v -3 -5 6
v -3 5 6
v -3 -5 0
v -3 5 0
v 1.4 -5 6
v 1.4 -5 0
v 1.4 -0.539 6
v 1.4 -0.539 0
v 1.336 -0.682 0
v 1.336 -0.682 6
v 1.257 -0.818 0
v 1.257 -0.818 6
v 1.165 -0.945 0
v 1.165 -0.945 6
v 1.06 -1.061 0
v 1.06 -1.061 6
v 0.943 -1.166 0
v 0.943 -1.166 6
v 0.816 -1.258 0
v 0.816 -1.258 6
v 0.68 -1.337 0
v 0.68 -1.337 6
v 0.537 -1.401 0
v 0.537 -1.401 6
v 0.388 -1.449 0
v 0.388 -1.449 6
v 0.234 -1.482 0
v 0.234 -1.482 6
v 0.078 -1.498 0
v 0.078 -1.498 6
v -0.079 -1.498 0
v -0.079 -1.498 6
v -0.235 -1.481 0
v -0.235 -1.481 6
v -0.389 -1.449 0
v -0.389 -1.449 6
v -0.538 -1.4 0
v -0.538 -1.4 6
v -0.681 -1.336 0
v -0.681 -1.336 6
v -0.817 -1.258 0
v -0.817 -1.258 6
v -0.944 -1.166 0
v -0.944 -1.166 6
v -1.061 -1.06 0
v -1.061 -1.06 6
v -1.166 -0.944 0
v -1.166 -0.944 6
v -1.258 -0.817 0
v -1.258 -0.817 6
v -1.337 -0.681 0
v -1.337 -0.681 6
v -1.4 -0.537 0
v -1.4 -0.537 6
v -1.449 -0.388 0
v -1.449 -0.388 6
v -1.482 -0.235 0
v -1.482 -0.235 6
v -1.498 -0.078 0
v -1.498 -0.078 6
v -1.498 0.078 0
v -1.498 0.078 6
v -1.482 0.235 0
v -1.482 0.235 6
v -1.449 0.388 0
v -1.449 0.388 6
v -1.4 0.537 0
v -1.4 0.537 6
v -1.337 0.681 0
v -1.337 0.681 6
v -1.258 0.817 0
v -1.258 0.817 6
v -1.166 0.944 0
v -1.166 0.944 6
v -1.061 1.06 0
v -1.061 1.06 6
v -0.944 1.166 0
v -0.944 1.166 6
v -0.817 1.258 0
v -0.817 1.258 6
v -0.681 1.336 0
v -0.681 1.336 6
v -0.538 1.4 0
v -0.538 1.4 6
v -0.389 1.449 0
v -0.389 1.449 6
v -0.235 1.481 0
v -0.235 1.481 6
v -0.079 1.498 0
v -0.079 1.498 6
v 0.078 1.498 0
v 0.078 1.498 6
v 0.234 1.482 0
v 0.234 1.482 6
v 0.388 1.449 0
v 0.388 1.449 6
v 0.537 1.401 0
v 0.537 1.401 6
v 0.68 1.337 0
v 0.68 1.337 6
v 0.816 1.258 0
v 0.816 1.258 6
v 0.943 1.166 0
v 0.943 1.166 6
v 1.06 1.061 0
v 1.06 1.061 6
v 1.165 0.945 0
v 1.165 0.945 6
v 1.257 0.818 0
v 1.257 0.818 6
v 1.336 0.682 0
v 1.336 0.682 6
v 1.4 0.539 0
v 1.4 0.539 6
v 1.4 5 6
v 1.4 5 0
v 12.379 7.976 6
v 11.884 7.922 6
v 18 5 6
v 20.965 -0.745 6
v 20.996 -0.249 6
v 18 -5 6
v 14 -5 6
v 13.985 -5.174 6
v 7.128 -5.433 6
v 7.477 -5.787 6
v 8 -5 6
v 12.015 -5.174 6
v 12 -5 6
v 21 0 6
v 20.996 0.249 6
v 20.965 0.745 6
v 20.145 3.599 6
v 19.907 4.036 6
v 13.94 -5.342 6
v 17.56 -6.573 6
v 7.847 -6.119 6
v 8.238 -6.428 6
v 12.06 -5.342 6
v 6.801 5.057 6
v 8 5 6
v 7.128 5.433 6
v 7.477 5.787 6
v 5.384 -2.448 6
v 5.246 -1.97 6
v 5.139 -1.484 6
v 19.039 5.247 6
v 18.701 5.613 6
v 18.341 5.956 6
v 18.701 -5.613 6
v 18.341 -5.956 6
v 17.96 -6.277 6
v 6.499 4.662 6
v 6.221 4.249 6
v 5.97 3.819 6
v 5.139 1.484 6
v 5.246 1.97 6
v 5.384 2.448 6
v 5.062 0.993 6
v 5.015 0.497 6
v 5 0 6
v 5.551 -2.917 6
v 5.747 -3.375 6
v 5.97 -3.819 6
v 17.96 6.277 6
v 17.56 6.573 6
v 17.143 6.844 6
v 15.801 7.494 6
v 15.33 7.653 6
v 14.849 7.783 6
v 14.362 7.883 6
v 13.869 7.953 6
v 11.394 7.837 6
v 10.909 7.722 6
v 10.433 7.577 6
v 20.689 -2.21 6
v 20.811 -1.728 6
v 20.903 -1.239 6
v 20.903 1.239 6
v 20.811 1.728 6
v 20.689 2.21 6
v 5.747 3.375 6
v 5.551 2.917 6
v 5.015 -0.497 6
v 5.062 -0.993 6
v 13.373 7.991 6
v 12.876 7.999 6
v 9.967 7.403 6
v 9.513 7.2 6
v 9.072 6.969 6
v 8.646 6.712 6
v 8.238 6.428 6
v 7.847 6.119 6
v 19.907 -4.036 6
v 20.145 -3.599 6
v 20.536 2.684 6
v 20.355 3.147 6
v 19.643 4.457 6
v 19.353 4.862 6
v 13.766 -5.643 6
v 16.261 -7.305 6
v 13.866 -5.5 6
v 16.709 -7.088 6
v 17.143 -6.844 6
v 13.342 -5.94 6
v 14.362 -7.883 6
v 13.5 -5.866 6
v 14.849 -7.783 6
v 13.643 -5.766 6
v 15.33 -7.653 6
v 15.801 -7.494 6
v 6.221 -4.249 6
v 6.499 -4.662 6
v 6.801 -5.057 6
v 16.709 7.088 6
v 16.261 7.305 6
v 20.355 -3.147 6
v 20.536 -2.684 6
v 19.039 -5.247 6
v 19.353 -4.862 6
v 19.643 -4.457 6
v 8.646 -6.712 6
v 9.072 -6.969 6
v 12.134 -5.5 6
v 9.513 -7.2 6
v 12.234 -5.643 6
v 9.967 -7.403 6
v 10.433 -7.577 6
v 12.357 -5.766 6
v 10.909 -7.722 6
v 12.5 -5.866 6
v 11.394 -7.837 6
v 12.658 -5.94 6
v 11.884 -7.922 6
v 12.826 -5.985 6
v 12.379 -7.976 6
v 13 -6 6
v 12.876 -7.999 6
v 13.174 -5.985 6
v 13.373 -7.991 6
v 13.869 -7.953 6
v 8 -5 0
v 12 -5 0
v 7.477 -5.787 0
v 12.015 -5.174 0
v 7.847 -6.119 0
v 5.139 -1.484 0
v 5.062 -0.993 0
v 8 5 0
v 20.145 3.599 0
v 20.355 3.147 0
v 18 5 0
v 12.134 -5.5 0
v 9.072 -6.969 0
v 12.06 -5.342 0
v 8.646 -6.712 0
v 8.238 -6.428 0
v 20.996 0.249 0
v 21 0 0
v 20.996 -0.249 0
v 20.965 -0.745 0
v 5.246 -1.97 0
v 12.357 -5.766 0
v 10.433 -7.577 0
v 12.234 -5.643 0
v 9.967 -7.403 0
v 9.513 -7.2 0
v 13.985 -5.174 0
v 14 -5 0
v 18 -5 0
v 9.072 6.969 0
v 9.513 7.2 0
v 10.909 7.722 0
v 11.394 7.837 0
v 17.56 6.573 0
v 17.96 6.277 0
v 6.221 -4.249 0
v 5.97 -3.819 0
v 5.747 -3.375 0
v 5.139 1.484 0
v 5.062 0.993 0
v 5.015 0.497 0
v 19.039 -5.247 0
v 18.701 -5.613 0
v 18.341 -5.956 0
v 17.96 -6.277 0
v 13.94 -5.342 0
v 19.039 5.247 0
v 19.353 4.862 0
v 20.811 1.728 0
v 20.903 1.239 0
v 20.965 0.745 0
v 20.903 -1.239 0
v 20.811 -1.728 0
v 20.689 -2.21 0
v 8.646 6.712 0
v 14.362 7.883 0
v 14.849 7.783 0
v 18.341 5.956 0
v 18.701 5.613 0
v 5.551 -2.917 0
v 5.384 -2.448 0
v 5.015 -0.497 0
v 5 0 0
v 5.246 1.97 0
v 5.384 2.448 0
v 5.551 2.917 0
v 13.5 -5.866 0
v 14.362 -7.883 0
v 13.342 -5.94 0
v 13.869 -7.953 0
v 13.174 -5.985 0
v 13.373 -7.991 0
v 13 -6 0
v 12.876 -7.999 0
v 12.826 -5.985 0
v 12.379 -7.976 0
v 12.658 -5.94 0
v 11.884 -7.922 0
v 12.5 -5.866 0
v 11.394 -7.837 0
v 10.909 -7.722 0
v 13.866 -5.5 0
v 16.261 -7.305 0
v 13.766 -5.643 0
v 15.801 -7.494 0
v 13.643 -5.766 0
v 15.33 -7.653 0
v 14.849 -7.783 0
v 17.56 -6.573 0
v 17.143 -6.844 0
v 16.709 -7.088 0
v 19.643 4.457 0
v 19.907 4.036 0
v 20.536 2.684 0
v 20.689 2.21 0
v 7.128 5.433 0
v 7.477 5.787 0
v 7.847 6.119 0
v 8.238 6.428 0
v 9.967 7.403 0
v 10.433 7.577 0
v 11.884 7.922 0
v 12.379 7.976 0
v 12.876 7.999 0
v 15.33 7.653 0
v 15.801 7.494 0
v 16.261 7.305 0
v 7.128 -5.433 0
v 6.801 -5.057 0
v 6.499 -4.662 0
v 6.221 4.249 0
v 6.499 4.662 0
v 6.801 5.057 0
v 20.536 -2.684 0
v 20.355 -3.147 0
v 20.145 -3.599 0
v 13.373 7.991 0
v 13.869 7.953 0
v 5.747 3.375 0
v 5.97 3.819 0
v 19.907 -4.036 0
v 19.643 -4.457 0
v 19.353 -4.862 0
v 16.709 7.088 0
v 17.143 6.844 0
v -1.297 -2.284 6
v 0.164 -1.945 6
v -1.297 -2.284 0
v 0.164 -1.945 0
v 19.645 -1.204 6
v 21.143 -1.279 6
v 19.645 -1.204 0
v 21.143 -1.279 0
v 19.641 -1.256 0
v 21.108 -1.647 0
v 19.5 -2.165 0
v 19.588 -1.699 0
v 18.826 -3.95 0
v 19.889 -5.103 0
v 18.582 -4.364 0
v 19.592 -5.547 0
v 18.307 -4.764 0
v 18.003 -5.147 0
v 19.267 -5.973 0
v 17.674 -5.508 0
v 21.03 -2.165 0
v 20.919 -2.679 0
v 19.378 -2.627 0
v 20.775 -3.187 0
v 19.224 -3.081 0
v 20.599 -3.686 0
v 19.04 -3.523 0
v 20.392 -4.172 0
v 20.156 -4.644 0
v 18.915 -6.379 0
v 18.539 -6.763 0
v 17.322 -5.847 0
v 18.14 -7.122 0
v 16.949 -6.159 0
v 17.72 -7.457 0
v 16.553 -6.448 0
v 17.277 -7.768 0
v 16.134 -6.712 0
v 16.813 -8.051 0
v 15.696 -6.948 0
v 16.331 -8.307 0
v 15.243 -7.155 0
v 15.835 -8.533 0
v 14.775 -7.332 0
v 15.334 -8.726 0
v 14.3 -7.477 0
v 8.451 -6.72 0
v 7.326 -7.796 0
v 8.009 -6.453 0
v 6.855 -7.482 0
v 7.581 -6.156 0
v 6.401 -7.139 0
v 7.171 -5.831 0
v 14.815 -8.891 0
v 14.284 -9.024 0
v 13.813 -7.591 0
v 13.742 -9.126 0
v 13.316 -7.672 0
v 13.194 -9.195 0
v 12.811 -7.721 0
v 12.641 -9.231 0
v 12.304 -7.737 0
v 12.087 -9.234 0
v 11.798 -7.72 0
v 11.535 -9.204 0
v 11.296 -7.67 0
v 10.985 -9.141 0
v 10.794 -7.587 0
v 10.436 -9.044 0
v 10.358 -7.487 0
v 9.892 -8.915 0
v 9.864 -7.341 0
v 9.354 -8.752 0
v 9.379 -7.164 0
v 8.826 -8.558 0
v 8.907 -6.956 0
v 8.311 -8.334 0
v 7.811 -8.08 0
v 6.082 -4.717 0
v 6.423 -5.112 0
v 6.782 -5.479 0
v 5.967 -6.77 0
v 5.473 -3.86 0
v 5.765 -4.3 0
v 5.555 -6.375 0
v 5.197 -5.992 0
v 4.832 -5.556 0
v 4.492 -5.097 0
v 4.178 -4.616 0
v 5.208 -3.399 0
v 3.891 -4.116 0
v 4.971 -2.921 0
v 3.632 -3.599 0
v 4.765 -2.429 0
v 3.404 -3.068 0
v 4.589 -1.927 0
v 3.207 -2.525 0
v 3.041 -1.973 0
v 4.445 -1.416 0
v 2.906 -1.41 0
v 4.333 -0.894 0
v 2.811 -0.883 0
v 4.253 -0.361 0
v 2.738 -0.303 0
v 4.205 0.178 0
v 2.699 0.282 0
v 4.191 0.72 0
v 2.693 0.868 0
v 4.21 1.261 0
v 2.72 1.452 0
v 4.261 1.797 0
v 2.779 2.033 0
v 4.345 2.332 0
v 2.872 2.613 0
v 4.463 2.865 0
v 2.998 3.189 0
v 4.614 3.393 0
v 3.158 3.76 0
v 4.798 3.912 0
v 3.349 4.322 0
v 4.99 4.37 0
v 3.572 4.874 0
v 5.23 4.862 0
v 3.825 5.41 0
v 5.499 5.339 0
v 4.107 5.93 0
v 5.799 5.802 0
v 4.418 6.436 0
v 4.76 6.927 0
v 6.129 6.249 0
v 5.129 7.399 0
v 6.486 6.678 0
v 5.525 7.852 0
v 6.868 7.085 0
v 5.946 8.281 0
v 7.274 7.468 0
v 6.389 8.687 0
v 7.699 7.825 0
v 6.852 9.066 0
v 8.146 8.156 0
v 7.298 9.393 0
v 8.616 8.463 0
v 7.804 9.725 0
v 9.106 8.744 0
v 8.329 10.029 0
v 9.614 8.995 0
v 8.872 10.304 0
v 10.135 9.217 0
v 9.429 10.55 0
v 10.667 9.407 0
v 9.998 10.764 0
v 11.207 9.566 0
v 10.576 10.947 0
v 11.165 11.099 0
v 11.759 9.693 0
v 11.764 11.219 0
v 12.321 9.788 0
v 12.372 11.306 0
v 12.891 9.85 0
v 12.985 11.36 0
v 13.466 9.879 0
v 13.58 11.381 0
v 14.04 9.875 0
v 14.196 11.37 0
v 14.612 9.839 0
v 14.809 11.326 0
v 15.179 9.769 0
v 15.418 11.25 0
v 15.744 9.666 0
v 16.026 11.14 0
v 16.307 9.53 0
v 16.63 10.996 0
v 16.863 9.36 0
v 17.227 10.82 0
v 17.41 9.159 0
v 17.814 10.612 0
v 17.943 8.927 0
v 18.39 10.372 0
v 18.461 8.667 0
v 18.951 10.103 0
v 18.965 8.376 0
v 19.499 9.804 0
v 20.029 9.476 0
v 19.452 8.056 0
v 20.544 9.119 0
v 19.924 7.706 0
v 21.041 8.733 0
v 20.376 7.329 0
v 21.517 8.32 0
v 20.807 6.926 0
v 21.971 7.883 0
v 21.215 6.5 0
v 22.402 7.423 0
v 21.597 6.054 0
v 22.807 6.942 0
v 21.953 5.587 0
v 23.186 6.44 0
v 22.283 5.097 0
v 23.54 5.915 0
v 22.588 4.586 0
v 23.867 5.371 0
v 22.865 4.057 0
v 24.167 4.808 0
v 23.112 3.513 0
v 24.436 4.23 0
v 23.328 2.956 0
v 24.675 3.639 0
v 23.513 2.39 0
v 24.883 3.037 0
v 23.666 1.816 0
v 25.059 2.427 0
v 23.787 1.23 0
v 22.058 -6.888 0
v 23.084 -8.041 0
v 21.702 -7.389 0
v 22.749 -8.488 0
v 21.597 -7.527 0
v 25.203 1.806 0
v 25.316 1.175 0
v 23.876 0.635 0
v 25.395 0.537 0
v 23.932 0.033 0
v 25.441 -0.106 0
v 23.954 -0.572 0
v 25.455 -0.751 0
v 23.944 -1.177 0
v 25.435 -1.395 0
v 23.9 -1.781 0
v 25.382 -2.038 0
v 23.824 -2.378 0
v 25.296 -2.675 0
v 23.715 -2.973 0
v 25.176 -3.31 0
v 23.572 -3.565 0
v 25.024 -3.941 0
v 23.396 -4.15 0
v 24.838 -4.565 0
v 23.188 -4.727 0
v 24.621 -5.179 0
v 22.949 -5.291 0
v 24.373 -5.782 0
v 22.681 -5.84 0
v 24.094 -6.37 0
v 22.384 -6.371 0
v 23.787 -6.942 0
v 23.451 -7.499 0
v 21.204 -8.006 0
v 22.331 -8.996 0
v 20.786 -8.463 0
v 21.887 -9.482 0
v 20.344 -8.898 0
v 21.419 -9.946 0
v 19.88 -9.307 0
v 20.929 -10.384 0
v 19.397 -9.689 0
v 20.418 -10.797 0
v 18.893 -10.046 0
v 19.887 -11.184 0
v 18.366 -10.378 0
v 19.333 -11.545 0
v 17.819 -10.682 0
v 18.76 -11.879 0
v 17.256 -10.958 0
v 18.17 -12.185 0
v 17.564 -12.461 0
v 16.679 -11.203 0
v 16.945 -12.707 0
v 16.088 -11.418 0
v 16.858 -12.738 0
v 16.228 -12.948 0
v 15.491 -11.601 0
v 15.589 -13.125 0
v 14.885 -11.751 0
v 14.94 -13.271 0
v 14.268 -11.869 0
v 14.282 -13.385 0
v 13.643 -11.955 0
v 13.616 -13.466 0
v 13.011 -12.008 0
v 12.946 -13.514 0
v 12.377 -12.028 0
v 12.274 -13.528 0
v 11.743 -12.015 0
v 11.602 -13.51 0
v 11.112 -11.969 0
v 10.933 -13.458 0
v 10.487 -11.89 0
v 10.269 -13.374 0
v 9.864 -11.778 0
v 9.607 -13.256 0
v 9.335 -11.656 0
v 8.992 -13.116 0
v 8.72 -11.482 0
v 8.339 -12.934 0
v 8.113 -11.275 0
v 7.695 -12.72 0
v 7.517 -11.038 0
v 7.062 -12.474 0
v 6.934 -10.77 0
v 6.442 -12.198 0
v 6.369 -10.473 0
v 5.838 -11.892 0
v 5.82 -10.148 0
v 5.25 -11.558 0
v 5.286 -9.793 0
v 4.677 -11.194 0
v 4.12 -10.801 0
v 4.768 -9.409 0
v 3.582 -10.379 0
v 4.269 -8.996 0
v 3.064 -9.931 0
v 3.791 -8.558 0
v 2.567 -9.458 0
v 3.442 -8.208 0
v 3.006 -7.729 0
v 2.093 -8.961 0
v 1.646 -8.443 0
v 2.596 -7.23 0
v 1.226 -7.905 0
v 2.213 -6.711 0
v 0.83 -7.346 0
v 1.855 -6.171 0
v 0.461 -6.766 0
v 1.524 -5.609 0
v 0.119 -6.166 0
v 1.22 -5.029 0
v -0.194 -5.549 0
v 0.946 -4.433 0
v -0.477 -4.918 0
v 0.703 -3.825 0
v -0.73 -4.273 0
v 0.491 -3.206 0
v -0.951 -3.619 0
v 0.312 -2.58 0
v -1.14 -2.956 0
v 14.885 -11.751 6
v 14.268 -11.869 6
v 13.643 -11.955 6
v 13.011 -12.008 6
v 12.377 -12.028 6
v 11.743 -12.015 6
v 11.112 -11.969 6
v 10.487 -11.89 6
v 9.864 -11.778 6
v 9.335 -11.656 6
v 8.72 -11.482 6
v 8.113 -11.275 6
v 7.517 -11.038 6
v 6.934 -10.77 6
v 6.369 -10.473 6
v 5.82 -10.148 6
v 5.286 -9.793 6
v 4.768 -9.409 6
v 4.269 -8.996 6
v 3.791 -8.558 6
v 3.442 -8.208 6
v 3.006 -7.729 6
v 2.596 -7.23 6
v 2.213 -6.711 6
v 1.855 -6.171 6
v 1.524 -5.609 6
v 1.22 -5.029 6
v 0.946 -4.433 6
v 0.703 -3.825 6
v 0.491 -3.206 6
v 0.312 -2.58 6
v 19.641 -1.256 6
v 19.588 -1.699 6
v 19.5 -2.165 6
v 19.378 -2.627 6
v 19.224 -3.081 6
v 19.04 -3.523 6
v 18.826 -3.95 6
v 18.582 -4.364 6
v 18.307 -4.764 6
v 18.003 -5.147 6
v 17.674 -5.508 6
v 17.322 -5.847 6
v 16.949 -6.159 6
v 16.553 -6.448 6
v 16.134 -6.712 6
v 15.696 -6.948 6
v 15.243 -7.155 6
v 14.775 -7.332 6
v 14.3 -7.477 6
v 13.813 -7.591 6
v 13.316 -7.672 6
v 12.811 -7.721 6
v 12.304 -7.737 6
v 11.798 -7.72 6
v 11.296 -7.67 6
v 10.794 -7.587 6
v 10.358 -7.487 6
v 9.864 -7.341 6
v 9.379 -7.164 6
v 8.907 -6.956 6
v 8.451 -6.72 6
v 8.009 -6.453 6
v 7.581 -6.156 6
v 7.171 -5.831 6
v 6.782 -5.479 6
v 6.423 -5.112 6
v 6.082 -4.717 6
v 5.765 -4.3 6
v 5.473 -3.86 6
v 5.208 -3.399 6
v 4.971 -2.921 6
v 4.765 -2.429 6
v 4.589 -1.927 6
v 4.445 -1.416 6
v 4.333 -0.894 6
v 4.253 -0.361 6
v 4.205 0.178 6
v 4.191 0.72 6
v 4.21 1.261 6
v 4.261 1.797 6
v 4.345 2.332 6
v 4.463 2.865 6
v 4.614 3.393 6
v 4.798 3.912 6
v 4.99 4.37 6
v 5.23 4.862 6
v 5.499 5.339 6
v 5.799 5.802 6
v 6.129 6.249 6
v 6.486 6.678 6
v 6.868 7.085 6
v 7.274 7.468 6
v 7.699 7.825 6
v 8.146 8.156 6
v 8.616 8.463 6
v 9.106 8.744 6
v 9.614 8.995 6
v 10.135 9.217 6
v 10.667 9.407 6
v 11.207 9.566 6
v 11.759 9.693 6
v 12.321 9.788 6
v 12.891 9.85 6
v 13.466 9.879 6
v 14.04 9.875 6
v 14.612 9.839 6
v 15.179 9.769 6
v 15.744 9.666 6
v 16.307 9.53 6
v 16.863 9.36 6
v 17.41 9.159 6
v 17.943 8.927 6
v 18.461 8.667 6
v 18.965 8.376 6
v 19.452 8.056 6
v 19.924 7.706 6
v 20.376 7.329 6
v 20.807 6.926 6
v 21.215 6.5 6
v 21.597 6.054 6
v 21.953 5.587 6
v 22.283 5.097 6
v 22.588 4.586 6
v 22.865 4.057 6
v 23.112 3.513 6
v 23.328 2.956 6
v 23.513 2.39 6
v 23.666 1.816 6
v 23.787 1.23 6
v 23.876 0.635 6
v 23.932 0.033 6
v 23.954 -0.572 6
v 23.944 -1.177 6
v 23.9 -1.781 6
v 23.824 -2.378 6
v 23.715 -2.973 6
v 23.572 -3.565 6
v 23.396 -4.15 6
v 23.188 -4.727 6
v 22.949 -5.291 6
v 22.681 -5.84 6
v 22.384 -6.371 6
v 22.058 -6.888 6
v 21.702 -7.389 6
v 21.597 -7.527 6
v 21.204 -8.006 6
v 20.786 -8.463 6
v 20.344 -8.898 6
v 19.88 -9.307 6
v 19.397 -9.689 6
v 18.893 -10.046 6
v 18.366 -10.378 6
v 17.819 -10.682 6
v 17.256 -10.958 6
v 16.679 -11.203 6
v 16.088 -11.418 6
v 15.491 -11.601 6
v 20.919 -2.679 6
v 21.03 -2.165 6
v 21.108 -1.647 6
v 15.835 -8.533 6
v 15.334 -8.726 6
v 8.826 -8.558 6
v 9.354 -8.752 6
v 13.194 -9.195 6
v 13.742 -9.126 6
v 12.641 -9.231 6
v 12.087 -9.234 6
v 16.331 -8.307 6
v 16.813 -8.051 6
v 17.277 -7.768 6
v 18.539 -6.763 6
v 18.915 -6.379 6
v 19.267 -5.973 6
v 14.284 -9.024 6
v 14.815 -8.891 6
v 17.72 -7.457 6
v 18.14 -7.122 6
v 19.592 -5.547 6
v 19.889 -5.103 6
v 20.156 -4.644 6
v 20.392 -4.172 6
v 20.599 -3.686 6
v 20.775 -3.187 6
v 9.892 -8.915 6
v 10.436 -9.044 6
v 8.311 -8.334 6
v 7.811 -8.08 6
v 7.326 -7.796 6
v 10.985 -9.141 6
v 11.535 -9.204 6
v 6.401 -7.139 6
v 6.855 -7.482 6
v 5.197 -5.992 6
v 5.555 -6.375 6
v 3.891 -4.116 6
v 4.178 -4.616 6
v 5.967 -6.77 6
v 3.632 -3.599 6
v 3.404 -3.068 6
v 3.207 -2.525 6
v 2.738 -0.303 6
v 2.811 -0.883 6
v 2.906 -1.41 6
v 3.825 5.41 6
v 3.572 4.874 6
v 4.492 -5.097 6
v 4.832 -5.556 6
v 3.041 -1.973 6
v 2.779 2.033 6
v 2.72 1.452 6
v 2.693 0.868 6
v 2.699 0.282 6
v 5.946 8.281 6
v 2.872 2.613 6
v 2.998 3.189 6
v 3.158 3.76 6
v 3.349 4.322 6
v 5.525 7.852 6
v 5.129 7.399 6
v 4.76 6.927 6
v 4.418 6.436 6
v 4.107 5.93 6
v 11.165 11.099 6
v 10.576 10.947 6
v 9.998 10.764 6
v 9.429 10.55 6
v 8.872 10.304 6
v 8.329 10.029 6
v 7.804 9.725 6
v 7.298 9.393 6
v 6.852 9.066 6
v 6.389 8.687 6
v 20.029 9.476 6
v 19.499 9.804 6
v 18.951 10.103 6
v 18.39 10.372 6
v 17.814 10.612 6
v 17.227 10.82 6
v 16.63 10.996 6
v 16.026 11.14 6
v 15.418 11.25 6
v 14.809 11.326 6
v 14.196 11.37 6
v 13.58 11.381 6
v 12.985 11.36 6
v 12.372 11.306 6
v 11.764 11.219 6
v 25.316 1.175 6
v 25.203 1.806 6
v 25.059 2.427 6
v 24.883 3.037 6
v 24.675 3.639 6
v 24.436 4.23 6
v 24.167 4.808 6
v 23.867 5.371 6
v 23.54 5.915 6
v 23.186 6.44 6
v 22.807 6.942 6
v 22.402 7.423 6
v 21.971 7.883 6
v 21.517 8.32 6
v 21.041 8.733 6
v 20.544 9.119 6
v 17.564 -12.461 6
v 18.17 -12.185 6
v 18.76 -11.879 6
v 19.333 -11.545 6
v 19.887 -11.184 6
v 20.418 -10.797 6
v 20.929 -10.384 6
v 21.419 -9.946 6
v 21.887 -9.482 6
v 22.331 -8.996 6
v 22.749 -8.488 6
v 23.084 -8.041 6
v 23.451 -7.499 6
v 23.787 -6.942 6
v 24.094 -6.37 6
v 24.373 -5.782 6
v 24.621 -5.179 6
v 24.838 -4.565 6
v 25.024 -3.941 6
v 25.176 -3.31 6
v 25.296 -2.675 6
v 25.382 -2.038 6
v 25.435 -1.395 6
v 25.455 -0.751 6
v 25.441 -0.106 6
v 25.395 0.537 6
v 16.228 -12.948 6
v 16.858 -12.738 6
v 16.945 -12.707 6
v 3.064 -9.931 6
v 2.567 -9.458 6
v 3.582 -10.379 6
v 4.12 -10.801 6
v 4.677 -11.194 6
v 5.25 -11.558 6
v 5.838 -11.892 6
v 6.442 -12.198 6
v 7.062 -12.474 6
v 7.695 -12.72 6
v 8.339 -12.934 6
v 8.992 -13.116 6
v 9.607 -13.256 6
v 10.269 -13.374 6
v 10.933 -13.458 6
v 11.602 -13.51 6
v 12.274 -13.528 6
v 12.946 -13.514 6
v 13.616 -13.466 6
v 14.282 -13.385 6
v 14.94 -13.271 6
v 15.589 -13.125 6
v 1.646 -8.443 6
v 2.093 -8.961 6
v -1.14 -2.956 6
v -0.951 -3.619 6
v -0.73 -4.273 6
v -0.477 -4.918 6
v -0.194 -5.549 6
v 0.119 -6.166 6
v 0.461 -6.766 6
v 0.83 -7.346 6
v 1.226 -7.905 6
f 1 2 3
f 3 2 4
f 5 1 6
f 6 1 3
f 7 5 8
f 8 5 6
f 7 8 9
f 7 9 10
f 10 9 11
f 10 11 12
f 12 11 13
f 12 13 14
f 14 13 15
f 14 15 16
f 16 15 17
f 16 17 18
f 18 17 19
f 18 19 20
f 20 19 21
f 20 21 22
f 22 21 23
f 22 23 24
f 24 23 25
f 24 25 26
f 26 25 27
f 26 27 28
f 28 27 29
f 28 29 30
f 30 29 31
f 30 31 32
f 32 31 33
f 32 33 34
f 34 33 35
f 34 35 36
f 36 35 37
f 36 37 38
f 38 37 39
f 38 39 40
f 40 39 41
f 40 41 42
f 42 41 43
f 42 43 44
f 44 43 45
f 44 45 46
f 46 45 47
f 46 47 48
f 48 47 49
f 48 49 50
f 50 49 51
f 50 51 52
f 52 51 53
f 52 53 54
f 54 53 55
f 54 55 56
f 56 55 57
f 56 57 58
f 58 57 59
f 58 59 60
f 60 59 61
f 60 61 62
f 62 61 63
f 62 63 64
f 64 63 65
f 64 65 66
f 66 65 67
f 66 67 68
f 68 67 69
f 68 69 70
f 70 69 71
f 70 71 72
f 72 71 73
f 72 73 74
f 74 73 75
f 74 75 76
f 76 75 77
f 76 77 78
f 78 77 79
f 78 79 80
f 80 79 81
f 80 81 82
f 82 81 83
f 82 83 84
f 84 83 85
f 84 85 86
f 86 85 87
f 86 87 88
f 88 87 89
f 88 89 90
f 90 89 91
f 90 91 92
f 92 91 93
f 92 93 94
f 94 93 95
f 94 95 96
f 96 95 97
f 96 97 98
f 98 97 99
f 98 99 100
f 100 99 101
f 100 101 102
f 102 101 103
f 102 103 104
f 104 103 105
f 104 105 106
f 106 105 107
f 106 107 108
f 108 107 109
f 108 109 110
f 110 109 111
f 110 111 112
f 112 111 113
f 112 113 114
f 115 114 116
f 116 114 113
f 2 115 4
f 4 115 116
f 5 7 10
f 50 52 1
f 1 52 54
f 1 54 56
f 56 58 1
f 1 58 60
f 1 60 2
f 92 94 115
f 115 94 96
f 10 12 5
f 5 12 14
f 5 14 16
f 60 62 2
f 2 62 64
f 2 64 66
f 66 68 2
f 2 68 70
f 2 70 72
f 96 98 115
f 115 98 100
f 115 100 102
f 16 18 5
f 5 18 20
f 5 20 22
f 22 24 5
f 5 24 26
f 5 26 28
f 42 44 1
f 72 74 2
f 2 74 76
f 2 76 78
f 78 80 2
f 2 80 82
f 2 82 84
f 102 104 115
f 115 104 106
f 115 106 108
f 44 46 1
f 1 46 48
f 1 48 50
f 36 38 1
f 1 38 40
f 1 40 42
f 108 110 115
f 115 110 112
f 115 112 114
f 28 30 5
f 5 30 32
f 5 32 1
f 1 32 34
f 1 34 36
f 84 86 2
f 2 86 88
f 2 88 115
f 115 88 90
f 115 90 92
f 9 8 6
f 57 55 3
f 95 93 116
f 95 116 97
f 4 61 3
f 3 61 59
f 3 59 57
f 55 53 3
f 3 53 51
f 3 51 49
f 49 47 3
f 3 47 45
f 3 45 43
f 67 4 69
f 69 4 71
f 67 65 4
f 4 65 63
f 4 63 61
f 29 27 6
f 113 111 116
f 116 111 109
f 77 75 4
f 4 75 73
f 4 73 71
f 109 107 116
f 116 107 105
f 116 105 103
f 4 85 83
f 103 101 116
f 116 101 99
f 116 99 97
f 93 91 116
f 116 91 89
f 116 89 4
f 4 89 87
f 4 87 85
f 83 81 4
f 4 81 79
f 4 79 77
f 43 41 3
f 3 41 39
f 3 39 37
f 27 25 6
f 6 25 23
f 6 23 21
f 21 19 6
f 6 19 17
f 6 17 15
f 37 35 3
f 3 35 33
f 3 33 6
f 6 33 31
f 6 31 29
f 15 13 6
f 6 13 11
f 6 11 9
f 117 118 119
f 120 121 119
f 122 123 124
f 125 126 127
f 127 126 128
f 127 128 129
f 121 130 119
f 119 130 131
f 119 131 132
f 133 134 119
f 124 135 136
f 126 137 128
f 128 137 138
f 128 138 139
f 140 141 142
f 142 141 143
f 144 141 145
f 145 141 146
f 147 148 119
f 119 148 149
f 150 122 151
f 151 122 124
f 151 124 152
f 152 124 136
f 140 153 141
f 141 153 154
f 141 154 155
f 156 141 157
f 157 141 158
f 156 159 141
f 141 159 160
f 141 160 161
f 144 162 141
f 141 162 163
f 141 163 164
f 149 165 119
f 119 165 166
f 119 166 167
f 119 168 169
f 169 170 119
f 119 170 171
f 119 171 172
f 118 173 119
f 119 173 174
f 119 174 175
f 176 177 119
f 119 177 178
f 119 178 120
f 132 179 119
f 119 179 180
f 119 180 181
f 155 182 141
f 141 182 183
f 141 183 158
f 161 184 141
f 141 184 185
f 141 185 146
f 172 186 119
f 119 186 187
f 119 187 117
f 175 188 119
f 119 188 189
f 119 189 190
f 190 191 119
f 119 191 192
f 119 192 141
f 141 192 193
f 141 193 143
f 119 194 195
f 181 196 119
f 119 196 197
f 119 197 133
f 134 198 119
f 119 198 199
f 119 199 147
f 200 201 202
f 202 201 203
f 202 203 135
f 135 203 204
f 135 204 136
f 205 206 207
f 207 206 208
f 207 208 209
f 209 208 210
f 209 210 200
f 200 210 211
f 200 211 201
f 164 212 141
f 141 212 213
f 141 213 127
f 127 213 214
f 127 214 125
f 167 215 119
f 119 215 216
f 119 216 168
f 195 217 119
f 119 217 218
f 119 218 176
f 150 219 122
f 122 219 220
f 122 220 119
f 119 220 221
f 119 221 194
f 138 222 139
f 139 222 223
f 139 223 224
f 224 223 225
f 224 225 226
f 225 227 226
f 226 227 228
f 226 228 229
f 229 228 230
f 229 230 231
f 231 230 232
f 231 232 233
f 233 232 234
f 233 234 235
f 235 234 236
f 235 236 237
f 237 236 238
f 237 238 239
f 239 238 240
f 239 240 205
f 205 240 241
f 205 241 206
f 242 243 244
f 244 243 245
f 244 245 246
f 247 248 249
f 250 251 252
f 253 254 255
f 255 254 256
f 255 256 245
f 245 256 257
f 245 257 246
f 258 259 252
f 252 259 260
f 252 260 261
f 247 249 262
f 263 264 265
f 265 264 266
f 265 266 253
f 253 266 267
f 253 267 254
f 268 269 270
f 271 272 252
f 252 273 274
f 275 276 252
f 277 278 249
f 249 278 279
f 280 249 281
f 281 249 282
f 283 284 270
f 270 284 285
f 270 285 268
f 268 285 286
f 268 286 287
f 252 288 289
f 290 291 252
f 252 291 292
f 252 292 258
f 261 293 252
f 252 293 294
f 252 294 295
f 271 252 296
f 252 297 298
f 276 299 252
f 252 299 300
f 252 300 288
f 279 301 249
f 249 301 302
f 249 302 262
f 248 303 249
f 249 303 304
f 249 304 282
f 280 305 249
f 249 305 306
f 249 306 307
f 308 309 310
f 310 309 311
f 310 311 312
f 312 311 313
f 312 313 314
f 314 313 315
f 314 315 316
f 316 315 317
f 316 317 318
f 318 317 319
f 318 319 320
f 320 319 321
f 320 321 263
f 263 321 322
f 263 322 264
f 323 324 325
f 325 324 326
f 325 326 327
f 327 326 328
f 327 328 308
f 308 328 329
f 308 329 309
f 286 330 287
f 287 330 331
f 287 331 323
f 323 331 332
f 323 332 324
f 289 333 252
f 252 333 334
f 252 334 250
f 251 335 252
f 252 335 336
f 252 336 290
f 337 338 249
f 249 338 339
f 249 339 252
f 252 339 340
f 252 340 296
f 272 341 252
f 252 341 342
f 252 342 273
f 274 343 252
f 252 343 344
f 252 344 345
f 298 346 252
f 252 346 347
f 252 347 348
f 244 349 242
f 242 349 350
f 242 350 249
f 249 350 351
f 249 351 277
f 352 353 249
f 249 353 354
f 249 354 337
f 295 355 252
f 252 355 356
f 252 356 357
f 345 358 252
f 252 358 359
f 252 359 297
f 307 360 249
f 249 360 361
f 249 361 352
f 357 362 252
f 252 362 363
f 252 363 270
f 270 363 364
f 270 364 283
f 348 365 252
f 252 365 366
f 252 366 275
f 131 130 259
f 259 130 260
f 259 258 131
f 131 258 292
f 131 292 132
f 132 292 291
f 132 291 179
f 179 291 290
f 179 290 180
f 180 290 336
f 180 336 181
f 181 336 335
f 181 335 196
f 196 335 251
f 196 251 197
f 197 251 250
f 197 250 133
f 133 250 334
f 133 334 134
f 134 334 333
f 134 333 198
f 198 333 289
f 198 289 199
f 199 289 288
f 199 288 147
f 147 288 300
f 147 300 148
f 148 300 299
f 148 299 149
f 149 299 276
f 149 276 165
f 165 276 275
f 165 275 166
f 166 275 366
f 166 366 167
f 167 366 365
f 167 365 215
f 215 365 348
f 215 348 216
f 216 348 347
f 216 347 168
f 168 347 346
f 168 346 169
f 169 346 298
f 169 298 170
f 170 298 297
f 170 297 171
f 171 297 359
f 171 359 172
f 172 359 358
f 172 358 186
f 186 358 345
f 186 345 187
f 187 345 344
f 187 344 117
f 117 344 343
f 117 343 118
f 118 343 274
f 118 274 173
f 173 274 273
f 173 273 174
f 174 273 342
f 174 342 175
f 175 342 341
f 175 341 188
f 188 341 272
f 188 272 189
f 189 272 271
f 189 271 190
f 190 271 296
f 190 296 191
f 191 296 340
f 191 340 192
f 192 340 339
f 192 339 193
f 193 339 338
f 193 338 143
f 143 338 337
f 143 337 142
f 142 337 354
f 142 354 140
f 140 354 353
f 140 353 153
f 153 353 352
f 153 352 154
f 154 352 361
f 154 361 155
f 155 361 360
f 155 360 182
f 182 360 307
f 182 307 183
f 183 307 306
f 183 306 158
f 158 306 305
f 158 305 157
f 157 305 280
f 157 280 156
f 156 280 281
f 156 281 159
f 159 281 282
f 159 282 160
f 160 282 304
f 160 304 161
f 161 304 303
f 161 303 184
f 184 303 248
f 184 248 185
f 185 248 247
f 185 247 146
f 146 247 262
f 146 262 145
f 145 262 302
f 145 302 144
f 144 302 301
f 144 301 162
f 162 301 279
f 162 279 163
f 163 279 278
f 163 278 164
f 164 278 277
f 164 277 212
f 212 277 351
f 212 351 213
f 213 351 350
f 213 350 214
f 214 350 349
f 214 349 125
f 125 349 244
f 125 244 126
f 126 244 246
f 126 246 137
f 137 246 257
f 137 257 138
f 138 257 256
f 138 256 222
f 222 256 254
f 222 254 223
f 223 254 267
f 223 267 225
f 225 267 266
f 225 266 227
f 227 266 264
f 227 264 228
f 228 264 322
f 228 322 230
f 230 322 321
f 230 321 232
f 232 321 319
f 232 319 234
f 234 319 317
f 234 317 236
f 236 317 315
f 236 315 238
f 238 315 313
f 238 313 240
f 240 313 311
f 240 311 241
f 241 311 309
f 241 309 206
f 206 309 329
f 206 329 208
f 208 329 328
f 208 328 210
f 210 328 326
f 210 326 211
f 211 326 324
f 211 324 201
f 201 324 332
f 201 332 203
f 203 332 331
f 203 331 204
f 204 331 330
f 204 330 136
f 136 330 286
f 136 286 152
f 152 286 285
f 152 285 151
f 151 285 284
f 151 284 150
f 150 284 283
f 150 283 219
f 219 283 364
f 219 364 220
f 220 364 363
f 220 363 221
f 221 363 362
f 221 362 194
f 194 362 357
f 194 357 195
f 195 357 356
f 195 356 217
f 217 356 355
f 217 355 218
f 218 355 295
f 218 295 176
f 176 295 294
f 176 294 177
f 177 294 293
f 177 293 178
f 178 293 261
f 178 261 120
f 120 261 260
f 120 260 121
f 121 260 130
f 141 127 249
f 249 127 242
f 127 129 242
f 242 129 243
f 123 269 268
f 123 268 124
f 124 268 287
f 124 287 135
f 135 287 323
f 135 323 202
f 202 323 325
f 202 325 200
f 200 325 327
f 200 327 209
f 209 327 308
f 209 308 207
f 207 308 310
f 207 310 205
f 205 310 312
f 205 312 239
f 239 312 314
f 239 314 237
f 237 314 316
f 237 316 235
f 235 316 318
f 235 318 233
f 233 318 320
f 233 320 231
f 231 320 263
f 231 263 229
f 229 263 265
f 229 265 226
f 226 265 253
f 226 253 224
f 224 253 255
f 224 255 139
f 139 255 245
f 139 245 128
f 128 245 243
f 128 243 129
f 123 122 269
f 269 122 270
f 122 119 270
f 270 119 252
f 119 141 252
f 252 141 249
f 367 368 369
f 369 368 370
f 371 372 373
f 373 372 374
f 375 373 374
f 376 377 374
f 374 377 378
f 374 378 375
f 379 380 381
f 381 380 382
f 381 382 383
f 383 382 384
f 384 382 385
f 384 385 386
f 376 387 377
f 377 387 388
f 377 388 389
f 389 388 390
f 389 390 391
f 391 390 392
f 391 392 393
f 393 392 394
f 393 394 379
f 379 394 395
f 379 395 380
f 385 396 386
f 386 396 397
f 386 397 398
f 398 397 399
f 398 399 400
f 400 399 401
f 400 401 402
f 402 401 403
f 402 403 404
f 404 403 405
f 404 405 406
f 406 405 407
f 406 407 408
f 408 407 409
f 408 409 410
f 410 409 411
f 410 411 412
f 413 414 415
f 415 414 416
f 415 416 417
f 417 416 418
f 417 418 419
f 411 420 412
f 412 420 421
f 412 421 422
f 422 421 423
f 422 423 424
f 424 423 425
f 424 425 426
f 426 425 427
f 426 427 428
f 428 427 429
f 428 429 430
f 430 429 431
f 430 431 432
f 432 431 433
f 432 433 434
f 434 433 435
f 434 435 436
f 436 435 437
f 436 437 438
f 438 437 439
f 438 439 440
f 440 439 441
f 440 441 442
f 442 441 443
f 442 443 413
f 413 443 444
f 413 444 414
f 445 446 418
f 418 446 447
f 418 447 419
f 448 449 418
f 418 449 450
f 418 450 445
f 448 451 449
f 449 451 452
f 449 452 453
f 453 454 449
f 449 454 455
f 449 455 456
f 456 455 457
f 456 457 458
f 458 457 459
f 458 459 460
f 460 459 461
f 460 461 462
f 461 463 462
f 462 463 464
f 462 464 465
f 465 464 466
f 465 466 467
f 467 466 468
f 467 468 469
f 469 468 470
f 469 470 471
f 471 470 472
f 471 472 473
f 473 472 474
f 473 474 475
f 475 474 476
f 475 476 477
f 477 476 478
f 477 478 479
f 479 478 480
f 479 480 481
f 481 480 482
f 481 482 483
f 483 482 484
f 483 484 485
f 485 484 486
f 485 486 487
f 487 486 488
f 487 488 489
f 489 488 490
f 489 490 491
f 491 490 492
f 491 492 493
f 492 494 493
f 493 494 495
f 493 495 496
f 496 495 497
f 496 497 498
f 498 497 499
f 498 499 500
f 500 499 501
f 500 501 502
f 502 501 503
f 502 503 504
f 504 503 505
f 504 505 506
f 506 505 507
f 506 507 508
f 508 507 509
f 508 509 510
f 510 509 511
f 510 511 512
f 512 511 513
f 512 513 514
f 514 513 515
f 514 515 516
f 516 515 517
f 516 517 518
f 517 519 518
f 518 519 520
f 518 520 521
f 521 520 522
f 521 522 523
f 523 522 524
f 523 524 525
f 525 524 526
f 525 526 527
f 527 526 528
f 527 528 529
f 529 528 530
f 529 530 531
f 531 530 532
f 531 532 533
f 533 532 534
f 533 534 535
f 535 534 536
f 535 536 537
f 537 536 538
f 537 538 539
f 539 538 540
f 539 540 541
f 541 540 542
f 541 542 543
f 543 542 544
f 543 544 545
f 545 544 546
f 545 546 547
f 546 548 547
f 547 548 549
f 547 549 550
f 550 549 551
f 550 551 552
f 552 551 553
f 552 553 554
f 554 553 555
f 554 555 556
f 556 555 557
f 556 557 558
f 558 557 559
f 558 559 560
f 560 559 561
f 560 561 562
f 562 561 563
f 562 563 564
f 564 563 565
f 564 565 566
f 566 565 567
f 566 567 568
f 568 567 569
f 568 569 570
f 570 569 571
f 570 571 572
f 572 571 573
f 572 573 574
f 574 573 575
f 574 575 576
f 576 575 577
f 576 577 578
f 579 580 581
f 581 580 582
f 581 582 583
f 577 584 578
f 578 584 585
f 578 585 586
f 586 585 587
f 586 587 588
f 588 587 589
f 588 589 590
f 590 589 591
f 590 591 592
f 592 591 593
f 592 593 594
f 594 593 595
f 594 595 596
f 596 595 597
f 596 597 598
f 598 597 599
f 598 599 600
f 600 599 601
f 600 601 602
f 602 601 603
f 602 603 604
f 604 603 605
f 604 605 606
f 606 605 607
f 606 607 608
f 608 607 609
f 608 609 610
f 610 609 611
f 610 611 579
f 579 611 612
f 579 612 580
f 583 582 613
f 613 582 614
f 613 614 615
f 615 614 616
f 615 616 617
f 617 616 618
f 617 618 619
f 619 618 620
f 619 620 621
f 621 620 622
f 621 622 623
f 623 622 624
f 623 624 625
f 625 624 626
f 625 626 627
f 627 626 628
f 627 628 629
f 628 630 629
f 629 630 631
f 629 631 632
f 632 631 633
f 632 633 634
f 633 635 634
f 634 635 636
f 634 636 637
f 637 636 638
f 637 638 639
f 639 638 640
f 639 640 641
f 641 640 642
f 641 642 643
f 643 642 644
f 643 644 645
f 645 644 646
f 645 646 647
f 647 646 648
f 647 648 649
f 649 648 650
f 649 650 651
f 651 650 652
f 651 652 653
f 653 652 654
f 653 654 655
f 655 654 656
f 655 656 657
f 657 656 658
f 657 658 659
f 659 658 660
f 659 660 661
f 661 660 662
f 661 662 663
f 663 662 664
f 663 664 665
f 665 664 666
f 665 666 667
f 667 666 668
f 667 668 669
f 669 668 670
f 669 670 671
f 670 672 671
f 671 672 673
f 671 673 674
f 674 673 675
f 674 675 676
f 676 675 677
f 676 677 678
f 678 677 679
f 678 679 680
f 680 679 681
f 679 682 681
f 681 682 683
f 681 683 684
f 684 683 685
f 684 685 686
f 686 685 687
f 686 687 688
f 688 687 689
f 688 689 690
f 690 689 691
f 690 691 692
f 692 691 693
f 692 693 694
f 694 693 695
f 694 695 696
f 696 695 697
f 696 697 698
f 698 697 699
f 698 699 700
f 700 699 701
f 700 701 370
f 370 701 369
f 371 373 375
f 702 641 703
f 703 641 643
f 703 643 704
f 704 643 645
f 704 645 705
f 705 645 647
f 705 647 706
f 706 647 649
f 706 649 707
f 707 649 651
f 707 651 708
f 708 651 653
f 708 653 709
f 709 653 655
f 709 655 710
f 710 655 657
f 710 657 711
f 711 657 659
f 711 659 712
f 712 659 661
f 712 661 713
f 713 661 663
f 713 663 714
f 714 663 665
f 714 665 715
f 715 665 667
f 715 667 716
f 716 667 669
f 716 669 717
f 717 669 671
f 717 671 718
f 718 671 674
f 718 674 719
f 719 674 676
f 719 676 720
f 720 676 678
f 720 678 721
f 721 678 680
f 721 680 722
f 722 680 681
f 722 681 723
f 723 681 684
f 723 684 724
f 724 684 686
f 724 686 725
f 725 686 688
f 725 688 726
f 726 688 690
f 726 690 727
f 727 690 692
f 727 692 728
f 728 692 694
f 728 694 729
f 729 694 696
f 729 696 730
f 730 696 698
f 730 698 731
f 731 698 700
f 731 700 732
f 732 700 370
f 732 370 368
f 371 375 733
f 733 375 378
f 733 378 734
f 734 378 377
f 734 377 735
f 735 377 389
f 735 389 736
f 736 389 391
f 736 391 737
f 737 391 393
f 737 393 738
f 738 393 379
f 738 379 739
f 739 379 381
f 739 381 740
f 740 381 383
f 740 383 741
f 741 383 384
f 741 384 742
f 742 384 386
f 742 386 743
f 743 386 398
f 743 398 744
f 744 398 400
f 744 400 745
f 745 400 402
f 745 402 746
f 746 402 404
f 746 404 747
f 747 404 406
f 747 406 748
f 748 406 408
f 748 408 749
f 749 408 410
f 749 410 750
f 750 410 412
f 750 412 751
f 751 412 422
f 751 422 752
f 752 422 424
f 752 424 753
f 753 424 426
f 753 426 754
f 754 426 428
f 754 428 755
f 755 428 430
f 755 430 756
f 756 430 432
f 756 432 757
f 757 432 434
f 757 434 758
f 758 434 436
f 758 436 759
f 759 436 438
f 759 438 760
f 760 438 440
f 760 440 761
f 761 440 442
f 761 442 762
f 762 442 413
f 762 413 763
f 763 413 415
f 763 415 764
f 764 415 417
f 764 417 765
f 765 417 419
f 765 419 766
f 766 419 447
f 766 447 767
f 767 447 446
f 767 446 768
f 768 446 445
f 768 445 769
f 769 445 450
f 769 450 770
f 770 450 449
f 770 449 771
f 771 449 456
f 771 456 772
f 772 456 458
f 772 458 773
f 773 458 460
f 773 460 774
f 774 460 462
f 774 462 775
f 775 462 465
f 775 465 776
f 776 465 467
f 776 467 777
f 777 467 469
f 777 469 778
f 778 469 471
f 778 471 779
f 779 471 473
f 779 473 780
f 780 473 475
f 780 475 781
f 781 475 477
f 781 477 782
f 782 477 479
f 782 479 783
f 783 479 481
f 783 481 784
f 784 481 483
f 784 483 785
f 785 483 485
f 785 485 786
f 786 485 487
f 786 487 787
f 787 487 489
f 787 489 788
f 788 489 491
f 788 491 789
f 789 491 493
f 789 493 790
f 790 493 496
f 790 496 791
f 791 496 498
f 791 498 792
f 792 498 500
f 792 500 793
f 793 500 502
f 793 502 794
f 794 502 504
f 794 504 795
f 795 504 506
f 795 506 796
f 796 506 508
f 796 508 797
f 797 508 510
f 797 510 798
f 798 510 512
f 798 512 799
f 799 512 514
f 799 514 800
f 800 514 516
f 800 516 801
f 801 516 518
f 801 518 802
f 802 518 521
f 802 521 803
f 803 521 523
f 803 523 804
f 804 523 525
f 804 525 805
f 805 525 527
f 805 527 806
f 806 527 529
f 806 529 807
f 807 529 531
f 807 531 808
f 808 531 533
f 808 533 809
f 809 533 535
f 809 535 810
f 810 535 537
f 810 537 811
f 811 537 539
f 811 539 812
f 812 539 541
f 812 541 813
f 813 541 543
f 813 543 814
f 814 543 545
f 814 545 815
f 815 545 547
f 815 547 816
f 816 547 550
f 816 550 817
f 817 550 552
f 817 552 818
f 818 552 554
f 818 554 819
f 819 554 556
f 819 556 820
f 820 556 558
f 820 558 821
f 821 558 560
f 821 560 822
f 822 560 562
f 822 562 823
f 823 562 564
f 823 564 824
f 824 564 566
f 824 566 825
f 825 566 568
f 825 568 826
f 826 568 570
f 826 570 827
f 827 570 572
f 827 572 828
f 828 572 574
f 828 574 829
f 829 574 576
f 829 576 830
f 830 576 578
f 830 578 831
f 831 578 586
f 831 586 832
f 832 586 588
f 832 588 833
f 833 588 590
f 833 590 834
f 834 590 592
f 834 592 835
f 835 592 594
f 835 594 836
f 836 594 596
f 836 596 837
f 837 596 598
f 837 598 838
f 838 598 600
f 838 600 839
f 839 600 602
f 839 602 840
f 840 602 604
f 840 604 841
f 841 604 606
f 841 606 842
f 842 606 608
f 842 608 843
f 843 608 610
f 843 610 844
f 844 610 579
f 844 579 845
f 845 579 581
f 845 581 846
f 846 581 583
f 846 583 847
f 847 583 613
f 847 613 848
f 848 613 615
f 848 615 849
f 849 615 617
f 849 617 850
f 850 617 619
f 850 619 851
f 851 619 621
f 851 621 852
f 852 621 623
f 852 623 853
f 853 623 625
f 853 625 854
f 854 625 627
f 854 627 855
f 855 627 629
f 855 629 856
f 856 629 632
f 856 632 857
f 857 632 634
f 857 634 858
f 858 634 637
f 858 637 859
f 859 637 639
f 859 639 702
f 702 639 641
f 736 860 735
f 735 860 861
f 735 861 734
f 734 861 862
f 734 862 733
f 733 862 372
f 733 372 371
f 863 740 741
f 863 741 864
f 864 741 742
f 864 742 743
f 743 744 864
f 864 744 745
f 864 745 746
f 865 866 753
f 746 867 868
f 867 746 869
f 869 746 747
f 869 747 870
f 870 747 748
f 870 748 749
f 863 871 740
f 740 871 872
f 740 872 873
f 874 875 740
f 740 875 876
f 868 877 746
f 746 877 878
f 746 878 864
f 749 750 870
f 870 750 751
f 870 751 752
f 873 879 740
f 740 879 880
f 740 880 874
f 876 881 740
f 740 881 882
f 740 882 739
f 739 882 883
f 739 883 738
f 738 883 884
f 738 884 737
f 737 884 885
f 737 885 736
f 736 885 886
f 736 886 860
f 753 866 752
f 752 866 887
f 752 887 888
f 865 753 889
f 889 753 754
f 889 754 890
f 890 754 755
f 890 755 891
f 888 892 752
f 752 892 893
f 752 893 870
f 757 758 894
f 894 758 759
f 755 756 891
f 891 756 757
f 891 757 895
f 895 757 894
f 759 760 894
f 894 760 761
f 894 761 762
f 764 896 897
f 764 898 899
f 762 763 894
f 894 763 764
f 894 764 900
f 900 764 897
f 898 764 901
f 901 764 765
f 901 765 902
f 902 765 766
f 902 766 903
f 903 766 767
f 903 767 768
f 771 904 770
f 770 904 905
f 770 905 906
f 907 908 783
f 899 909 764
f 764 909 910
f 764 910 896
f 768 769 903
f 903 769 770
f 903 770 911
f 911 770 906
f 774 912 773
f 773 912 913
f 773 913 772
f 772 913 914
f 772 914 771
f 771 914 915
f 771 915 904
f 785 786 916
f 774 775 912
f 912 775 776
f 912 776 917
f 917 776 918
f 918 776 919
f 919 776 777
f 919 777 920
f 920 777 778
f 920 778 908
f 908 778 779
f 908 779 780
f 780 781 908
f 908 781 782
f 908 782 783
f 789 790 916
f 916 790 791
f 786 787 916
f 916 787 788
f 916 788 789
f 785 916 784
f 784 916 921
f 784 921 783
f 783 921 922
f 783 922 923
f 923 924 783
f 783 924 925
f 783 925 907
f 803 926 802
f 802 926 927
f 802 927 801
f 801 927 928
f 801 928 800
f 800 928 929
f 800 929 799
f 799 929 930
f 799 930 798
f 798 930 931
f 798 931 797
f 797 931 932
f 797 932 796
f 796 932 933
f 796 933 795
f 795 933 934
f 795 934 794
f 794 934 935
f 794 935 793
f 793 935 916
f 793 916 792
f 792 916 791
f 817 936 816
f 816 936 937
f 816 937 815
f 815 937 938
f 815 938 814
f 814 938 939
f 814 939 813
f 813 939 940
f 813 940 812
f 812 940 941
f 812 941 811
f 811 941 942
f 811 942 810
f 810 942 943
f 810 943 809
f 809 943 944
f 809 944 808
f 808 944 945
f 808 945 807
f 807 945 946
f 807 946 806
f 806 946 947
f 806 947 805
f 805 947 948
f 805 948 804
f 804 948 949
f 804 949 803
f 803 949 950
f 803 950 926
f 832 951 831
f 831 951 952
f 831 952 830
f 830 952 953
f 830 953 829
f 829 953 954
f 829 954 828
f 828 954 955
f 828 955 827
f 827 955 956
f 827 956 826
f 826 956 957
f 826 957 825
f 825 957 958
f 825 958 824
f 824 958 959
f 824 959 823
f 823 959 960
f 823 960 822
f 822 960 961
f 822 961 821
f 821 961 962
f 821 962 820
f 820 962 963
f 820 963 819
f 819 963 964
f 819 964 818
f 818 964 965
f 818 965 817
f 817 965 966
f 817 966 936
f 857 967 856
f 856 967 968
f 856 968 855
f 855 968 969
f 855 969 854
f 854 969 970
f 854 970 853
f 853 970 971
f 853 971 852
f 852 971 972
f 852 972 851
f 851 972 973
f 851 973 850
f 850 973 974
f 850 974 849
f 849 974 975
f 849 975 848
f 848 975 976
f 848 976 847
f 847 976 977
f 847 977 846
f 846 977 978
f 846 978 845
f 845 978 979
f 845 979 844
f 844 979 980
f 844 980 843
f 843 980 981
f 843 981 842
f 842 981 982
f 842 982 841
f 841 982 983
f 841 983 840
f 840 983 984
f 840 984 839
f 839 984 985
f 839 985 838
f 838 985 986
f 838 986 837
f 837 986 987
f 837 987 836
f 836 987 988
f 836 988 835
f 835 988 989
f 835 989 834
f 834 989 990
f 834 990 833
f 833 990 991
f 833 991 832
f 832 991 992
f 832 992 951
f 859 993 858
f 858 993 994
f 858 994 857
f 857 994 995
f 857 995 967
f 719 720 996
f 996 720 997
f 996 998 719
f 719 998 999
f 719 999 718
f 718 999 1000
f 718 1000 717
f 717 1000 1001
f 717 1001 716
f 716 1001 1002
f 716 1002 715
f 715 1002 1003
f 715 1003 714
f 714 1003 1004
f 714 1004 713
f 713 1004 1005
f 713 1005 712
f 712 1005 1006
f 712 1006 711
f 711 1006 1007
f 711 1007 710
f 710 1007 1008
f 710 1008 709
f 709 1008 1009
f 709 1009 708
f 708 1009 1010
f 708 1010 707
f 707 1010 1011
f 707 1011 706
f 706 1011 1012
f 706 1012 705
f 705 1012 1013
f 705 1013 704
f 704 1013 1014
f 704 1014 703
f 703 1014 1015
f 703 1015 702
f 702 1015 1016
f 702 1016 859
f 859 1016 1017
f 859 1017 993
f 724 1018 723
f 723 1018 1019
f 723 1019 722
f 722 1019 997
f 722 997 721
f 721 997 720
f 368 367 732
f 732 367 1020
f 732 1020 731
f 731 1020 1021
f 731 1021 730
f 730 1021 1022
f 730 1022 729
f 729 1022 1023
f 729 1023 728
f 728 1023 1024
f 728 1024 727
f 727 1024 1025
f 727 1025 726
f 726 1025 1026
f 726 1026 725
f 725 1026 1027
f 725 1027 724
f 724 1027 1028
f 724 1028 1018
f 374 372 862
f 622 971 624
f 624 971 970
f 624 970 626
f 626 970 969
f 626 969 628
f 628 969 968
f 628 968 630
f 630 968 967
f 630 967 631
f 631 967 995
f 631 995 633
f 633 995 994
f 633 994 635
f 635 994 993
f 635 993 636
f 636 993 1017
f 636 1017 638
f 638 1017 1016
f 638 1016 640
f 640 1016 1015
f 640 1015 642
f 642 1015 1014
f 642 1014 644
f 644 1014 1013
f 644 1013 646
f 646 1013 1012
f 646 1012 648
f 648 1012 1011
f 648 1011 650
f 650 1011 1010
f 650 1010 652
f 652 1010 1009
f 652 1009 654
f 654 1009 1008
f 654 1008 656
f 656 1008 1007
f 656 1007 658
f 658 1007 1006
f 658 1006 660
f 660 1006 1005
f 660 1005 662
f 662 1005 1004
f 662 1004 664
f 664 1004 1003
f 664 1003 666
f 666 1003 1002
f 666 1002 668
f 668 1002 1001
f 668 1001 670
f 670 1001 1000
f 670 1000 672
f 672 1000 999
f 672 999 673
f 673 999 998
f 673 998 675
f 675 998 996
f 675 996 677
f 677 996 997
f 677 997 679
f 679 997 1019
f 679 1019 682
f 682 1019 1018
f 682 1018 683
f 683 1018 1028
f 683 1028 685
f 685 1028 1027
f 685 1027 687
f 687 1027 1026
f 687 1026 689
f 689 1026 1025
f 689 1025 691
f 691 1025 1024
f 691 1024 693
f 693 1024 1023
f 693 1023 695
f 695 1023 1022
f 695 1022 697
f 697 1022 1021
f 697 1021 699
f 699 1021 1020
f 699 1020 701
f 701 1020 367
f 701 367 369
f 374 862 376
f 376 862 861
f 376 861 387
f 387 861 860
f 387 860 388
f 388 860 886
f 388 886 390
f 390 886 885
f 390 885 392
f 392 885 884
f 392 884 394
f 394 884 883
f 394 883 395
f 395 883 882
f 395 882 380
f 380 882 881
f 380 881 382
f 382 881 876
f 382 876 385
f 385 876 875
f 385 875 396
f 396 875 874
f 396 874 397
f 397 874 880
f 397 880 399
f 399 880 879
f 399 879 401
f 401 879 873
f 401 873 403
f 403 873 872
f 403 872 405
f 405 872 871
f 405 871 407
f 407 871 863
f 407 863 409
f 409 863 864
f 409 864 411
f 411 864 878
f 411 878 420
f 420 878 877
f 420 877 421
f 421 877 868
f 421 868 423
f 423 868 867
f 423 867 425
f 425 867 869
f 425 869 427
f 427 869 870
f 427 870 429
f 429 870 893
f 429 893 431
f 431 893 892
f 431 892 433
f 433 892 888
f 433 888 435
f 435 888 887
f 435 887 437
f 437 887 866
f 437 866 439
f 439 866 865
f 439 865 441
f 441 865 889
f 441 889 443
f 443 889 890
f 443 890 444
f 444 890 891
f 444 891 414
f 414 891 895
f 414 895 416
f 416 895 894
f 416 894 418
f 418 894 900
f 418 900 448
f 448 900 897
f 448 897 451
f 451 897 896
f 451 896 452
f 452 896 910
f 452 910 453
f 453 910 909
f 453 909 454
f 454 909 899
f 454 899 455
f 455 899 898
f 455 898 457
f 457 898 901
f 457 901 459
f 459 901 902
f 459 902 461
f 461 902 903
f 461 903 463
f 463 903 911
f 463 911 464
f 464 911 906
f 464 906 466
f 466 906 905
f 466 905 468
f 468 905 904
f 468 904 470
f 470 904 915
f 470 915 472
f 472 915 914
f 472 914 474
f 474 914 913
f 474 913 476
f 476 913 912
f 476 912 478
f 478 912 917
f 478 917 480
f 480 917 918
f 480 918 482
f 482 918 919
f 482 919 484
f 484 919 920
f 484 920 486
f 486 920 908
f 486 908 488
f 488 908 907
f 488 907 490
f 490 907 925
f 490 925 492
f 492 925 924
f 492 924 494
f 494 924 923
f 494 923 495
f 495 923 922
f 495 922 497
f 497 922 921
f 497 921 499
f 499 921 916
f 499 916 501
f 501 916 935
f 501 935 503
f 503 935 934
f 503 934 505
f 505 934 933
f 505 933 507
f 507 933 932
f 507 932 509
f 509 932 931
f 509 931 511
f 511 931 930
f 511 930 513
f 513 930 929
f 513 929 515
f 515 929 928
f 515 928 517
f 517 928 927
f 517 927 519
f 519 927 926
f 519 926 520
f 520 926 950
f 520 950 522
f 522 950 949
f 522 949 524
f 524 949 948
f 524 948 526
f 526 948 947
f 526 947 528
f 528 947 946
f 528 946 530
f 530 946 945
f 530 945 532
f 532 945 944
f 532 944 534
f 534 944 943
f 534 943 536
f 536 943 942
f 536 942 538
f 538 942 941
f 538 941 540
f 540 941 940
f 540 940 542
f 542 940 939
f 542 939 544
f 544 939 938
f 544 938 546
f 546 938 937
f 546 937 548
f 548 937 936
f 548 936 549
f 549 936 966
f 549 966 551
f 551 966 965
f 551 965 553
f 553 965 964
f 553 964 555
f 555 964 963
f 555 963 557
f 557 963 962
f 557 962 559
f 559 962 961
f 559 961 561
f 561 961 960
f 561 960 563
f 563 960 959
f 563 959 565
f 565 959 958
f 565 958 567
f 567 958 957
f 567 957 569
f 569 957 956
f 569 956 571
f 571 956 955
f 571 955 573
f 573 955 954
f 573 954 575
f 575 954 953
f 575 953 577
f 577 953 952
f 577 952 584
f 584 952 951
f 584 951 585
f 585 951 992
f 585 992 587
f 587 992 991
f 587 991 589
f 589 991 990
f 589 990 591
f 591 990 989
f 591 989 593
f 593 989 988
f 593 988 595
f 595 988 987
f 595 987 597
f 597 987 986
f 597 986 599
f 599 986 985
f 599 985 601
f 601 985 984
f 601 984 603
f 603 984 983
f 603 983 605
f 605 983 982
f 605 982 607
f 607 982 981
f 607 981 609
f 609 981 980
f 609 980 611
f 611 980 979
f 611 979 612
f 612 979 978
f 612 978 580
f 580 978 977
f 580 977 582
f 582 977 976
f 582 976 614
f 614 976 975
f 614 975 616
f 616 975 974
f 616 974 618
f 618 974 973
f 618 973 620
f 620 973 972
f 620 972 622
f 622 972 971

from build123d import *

# Parameters (mm, degrees)
ESQUISSE1_R          = 8
BOSS_EXTRU_1_DEPTH   = 6
BOSS_EXTRU_1_2_DEPTH = 6
BALAYAGE2_DEPTH      = 6


# Read off the part's stored shape, not the designer's step: Balayage2
with BuildPart() as part:
    # Esquisse1 → Boss.-Extru.1 (new body)
    with BuildSketch(Plane.XY):
        with Locations((13, 0)):
            Circle(ESQUISSE1_R)
        with BuildLine():
            Line((8, 5), (18, 5))
            Line((18, 5), (18, -5))
            Line((18, -5), (14, -5))
            ThreePointArc((14, -5), (13, -6), (12, -5))
            Line((12, -5), (8, -5))
            Line((8, -5), (8, 5))
        make_face(mode=Mode.SUBTRACT)
    extrude(amount=BOSS_EXTRU_1_DEPTH)


with BuildPart() as body_2:
    # Esquisse1 → Boss.-Extru.1 2 (new body)
    with BuildSketch(Plane.XY):
        with BuildLine():
            Line((1.4, -0.538516481), (1.4, -5))
            Line((1.4, -5), (-3, -5))
            Line((-3, -5), (-3, 5))
            Line((-3, 5), (1.4, 5))
            Line((1.4, 5), (1.4, 0.538516481))
            ThreePointArc((1.4, 0.538516481), (-1.5, 0), (1.4, -0.538516481))
        make_face()
    extrude(amount=BOSS_EXTRU_1_2_DEPTH)


with BuildPart() as body_3:
    # Balayage2 outline → Balayage2 (new body)
    with BuildSketch(Plane.XY):
        with BuildLine():
            add(Edge.make_bspline(
                [(0.164032959, -1.944613303), (0.506396871, -3.607917309), (1.179264256, -5.191157109), (3.047673522, -7.942626067), (4.250737694, -9.121734152), (6.972663129, -10.907763689), (8.502712432, -11.521923081), (11.632391284, -12.114400381), (13.245160201, -12.095116805), (16.293911252, -11.456313422), (17.742978472, -10.833961583), (20.255462917, -9.114280759), (21.329903585, -8.009298257), (22.952106044, -5.516275925), (23.507128331, -4.116911793), (24.03591202, -1.261425329), (24.012038287, 0.207972321), (23.419390884, 2.979035431), (22.847699176, 4.293899166), (21.276995762, 6.567533081), (20.270204714, 7.537397657), (18.006276178, 8.996005989), (16.737668249, 9.492025714), (14.15646747, 9.957422926), (12.830456425, 9.929120623), (10.337048374, 9.382970361), (9.156337469, 8.862104635), (7.121382564, 7.440702529), (6.25597634, 6.532246348), (4.960660127, 4.497662357), (4.523467736, 3.359904651), (4.121054986, 1.053114865), (4.153573493, -0.129487918), (4.652775889, -2.345280923), (5.122595608, -3.391904446), (6.394264145, -5.188404917), (7.204193135, -5.949508251), (9.00909367, -7.081933797), (10.015873084, -7.46053305), (12.048078293, -7.800501926), (13.08724114, -7.764054172), (15.025467999, -7.31241257), (15.93809075, -6.893939546), (17.496438918, -5.77259963), (18.153450642, -5.061464122), (19.123535686, -3.486720775), (19.443864865, -2.611100331), (19.610830691, -1.556677813), (19.631493768, -1.380261161), (19.645132136, -1.203823372)],
                knots=[0, 0, 0, 0, 0.03125, 0.03125, 0.0625, 0.0625, 0.09375, 0.09375, 0.125, 0.125, 0.15625, 0.15625, 0.1875, 0.1875, 0.21875, 0.21875, 0.25, 0.25, 0.28125, 0.28125, 0.3125, 0.3125, 0.34375, 0.34375, 0.375, 0.375, 0.40625, 0.40625, 0.4375, 0.4375, 0.46875, 0.46875, 0.5, 0.5, 0.53125, 0.53125, 0.5625, 0.5625, 0.59375, 0.59375, 0.625, 0.625, 0.65625, 0.65625, 0.6875, 0.6875, 0.71875, 0.71875, 0.725, 0.725, 0.725, 0.725], degree=3))
            Line((0.164032959, -1.944613303), (-1.29716185, -2.28359668))
            add(Edge.make_bspline(
                [(-1.29716185, -2.28359668), (-0.90977771, -4.140961303), (-0.156255725, -5.902570174), (1.944261379, -8.978098829), (3.290191193, -10.290956062), (6.350794548, -12.287259596), (8.064099774, -12.97014824), (11.58724489, -13.626914518), (13.395634143, -13.600806998), (16.832451461, -12.870427931), (18.459572331, -12.166720864), (21.295331058, -10.21356614), (22.503000825, -8.965125738), (24.334178971, -6.132423448), (24.957194652, -4.549440195), (25.548618925, -1.300038958), (25.517068059, 0.3650361), (24.831078099, 3.523941749), (24.177186004, 5.016574488), (22.371393659, 7.612563288), (21.220442669, 8.715045588), (18.615641443, 10.381098348), (17.162980163, 10.944241063), (14.187322806, 11.470323333), (12.665561943, 11.433329119), (9.784567964, 10.791728267), (8.426423355, 10.187651143), (6.070204482, 8.529221179), (5.072909649, 7.475759599), (3.571982276, 5.09885944), (3.068712527, 3.776520132), (2.607972259, 1.074606654), (2.650409821, -0.303840013), (3.247621563, -2.906922324), (3.801883719, -4.130578802), (5.312951301, -6.247027749), (6.268923471, -7.139135113), (8.417922564, -8.474937102), (9.6099399, -8.918333882), (12.038109497, -9.313732151), (13.27324197, -9.265851237), (15.598412611, -8.713028607), (16.687580958, -8.208581419), (18.56425998, -6.84487622), (19.351179873, -5.986393458), (20.52185648, -4.065295434), (20.90538029, -3.003600068), (21.103414053, -1.710944638), (21.127685584, -1.49491785), (21.143362698, -1.278969198)],
                knots=[0, 0, 0, 0, 0.03125, 0.03125, 0.0625, 0.0625, 0.09375, 0.09375, 0.125, 0.125, 0.15625, 0.15625, 0.1875, 0.1875, 0.21875, 0.21875, 0.25, 0.25, 0.28125, 0.28125, 0.3125, 0.3125, 0.34375, 0.34375, 0.375, 0.375, 0.40625, 0.40625, 0.4375, 0.4375, 0.46875, 0.46875, 0.5, 0.5, 0.53125, 0.53125, 0.5625, 0.5625, 0.59375, 0.59375, 0.625, 0.625, 0.65625, 0.65625, 0.6875, 0.6875, 0.71875, 0.71875, 0.725, 0.725, 0.725, 0.725], degree=3))
            Line((21.143362698, -1.278969198), (19.645132136, -1.203823372))
        make_face()
    extrude(amount=BALAYAGE2_DEPTH)


solid = Compound([part.part, body_2.part, body_3.part])
